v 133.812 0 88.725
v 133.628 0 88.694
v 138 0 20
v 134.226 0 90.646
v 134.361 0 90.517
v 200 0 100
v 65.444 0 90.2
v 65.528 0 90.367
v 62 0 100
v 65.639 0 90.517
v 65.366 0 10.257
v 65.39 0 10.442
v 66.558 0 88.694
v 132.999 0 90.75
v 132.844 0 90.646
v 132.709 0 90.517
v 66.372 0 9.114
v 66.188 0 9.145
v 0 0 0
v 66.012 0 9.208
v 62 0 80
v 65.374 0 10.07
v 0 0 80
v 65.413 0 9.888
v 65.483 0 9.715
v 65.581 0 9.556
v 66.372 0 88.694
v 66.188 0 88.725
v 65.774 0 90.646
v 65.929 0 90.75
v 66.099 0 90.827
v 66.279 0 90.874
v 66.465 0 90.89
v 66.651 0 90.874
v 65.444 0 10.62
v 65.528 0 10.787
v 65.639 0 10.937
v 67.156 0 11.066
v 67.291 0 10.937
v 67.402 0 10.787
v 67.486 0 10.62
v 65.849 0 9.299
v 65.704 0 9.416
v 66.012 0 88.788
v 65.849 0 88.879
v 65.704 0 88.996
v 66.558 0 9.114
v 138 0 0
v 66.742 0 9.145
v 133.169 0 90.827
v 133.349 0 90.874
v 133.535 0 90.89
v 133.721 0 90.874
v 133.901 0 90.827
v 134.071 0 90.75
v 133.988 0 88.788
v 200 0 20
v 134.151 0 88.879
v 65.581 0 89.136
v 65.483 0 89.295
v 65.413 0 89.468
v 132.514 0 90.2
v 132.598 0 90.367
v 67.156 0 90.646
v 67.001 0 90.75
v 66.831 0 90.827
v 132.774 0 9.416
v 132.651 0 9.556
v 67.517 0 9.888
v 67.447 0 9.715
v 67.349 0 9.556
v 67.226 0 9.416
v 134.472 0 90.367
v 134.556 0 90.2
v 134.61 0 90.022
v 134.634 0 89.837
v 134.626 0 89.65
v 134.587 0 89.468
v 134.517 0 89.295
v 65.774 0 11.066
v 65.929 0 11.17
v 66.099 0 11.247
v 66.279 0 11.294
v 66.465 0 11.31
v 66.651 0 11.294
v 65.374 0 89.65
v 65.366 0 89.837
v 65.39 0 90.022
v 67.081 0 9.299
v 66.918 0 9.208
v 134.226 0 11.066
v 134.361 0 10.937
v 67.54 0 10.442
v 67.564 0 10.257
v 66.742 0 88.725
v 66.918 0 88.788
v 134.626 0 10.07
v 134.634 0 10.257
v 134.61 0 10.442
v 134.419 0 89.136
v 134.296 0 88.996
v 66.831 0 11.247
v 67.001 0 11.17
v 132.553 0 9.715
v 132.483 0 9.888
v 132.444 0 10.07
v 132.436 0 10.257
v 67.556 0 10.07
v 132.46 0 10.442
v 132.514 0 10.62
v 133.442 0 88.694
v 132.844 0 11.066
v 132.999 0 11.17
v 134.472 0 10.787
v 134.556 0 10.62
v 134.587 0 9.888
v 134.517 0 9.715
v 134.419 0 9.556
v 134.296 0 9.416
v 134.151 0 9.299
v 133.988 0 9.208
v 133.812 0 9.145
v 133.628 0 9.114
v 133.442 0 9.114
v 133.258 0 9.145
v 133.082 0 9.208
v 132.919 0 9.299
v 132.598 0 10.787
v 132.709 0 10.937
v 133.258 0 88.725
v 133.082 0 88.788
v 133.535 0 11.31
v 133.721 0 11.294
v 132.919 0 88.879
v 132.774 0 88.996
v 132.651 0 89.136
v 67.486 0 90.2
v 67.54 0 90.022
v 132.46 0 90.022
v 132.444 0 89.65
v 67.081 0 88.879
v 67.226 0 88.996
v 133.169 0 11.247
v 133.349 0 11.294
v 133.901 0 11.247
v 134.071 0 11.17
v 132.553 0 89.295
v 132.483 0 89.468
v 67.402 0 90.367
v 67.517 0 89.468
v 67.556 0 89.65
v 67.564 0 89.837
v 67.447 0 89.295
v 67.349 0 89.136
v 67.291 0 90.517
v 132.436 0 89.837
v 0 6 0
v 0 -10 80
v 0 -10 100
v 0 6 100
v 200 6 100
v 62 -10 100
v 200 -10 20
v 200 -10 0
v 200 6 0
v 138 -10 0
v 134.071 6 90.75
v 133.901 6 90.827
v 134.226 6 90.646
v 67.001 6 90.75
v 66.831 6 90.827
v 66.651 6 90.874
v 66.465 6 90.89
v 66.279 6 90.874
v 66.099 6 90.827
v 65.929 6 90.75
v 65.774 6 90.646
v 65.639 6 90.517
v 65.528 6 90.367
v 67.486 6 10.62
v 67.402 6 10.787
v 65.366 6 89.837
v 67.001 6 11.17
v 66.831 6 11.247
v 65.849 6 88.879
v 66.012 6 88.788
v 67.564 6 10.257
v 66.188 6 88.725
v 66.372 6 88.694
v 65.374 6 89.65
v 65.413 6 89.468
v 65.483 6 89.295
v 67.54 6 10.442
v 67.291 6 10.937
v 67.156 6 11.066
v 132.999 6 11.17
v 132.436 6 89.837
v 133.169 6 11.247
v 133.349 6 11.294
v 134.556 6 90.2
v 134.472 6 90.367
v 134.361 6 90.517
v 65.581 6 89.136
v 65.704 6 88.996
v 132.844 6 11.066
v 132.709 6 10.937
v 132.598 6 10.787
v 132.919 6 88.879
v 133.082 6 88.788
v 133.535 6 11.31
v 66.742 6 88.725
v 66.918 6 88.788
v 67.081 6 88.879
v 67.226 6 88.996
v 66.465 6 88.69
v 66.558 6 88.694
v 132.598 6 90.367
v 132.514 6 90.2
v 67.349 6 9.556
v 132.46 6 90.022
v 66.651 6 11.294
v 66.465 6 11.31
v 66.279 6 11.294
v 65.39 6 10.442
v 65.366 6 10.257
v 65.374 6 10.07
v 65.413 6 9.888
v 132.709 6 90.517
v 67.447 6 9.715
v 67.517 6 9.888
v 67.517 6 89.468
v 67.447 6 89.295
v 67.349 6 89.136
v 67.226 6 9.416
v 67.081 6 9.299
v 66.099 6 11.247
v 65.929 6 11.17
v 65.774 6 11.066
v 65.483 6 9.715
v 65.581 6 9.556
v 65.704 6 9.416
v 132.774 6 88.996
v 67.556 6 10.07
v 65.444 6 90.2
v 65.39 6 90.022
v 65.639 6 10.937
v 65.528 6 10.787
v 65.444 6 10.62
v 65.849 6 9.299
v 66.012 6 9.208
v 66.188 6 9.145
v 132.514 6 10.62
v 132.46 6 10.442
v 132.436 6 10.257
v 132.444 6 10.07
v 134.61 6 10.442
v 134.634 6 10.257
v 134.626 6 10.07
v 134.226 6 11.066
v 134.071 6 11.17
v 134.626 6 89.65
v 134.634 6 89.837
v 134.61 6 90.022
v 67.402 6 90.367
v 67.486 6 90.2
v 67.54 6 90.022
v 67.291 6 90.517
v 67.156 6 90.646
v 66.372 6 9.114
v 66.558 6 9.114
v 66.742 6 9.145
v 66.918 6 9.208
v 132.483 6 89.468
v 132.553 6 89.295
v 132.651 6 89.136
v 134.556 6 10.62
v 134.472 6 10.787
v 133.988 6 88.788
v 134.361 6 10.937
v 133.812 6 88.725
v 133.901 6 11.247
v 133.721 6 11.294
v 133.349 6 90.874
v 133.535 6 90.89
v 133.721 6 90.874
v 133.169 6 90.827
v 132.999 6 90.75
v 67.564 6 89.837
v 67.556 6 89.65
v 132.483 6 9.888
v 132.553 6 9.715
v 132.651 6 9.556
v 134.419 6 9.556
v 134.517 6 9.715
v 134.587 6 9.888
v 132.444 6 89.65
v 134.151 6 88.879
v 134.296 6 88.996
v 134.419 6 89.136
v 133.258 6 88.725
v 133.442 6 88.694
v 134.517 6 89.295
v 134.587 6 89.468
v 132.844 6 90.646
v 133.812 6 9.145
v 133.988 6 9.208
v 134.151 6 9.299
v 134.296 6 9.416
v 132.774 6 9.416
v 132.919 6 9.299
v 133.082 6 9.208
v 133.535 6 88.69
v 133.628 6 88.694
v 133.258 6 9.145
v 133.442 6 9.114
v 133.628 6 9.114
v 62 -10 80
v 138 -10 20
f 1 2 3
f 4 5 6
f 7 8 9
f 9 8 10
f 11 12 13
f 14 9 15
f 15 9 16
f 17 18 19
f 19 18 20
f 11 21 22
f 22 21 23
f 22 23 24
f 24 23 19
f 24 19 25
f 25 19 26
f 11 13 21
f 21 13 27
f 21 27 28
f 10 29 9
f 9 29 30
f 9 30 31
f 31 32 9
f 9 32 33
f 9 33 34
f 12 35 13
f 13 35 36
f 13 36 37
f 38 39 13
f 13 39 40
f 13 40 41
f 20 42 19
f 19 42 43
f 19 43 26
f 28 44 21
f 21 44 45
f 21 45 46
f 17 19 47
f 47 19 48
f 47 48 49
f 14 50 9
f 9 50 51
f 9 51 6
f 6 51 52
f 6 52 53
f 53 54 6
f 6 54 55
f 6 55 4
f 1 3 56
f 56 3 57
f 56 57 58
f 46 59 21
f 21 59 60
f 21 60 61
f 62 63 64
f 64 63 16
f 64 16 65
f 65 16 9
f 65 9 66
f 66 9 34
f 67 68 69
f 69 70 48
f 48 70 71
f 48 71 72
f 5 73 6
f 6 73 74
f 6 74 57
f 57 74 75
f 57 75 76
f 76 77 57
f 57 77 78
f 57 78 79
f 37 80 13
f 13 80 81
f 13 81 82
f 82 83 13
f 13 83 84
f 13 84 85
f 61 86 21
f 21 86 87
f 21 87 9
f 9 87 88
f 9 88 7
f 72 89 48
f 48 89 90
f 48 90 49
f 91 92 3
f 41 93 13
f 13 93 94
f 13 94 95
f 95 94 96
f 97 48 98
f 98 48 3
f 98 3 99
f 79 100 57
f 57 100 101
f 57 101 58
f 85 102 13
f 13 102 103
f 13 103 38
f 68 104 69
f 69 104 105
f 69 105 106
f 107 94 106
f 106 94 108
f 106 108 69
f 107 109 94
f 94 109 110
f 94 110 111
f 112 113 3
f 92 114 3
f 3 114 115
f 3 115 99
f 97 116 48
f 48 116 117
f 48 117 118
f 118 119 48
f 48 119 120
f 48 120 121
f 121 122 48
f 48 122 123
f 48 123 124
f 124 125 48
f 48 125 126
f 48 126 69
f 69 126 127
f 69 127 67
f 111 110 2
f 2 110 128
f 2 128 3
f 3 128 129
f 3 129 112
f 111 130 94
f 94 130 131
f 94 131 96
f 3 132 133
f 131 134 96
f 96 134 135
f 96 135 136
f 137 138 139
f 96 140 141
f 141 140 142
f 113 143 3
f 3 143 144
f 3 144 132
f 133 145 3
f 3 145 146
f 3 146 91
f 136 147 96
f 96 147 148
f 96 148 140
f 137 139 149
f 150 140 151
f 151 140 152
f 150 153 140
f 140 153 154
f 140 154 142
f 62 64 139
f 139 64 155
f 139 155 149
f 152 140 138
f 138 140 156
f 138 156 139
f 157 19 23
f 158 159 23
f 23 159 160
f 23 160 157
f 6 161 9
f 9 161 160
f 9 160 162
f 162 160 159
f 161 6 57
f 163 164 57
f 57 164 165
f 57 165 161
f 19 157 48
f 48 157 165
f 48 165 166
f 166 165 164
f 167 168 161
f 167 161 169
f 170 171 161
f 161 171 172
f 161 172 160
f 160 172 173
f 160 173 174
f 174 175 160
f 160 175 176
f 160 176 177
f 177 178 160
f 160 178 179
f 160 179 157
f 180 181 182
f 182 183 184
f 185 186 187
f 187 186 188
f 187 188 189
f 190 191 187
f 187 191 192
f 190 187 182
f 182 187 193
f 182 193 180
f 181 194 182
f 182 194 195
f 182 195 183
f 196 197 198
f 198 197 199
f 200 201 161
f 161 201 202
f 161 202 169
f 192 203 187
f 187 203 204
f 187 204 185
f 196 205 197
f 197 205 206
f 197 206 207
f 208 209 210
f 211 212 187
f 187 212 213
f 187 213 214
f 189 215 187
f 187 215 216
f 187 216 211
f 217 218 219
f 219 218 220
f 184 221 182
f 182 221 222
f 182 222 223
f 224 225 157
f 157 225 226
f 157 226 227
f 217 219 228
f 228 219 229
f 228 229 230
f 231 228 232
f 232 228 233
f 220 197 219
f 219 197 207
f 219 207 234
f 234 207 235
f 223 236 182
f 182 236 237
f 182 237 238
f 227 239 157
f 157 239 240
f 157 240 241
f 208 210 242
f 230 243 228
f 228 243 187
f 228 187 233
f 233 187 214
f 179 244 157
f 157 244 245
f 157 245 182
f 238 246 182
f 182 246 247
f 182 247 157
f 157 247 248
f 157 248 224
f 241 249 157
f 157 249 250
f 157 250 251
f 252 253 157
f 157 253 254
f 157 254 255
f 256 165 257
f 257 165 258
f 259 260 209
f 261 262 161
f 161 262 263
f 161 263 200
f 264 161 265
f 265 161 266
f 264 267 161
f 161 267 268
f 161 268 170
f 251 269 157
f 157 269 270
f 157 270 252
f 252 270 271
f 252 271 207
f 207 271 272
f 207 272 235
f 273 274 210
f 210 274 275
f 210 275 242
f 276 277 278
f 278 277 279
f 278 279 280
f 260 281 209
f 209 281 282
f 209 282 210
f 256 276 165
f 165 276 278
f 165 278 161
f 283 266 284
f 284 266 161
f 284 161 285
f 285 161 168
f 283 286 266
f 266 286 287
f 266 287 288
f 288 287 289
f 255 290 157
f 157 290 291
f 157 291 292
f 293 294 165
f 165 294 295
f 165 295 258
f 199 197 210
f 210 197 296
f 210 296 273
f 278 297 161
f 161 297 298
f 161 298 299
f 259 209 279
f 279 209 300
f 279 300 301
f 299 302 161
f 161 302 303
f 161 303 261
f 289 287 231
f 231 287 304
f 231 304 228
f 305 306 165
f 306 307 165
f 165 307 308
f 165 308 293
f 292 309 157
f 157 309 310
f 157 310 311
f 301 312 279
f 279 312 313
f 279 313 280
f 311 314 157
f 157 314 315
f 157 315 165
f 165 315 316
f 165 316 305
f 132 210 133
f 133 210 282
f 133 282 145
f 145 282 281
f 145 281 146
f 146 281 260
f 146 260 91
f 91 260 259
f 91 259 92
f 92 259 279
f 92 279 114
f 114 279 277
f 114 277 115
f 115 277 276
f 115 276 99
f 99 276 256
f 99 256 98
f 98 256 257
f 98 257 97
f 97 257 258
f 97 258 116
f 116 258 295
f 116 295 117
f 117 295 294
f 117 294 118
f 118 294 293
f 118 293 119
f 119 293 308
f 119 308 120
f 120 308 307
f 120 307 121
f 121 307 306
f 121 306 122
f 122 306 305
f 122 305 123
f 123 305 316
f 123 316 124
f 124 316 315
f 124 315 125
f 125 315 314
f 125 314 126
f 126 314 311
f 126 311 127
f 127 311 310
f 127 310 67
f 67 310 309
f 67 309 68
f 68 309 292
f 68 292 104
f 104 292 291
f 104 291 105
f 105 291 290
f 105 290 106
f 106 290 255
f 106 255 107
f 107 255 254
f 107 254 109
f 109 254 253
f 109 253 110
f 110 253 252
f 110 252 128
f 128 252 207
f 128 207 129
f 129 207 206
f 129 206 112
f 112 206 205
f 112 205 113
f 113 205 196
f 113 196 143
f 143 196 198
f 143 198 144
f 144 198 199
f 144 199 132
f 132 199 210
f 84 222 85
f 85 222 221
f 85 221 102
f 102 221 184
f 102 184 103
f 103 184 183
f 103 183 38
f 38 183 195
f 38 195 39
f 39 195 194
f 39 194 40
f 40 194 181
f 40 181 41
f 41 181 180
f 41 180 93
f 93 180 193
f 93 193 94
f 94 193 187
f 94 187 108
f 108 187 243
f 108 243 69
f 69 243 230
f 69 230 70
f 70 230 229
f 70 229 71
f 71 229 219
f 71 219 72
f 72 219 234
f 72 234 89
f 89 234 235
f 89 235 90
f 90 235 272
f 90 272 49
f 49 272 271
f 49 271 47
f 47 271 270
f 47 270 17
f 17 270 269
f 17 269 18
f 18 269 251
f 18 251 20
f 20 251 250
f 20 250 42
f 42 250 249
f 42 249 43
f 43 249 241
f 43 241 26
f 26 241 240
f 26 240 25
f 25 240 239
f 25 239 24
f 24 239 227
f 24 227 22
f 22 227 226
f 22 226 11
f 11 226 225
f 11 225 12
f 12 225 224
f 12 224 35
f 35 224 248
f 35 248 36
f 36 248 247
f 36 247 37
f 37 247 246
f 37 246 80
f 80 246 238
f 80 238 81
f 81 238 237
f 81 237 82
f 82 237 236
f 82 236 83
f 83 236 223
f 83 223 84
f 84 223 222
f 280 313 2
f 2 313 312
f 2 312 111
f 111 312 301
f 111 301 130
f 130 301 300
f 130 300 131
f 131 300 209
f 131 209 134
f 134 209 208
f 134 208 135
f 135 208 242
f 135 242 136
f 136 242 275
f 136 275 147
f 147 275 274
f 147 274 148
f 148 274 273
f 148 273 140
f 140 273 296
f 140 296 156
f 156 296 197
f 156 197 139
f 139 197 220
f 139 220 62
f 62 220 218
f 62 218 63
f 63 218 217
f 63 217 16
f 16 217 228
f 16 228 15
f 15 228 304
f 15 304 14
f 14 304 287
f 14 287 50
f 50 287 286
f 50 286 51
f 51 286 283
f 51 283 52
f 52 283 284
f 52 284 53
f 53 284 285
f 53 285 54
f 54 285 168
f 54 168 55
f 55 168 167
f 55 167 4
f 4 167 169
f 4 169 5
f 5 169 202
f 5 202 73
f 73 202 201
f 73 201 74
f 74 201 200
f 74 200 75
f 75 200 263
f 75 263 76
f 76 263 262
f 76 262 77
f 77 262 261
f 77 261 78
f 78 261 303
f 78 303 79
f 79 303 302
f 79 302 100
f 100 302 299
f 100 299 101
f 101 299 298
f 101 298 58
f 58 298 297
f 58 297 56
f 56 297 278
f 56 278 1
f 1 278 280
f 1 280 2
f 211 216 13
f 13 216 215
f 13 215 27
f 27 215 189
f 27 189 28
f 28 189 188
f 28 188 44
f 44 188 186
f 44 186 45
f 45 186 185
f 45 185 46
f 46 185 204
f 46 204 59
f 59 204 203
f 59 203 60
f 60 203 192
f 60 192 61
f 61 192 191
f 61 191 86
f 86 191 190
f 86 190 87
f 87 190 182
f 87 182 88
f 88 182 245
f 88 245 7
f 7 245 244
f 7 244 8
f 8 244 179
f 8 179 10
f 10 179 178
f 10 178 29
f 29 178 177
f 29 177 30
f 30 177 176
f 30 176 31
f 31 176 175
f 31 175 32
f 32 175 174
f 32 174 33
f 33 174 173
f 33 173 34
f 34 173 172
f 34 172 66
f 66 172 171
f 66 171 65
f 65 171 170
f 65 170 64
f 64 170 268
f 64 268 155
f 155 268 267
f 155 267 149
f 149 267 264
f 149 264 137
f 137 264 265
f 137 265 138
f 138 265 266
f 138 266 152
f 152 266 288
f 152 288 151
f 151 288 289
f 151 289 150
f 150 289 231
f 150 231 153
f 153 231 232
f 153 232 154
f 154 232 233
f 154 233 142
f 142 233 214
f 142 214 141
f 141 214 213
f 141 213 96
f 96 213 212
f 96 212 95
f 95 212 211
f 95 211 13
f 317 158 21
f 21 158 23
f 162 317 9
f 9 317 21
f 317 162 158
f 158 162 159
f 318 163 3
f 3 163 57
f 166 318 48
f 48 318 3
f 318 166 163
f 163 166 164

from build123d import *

# Parameters (mm, degrees)
SKETCH2_W           = 200
SKETCH2_H           = 100
BOSS_EXTRUDE1_DEPTH = 6
SKETCH3_R           = 1.1
CUT_EXTRUDE1_DEPTH  = 6
SKETCH4_W           = 62
SKETCH4_H           = 20
BOSS_EXTRUDE2_DEPTH = 10


with BuildPart() as part:
    # Sketch2 → Boss-Extrude1 (new body)
    with BuildSketch(Plane(origin=(0, 0, 0), x_dir=(1, 0, 0), z_dir=(0, 1, 0))):
        with Locations((100, -50)):
            Rectangle(SKETCH2_W, SKETCH2_H)
    extrude(amount=BOSS_EXTRUDE1_DEPTH)

    # Sketch3 → Cut-Extrude1 (cut)
    with BuildSketch(Plane(origin=(0, 6, 0), x_dir=(1, 0, 0), z_dir=(0, 1, 0))):
        with Locations(Location((66.465, -10.21, 0), (0, 0, 270))):
            Circle(SKETCH3_R)
        with Locations(Location((133.535, -10.21, 0), (0, 0, 270))):
            Circle(SKETCH3_R)
    cut_extrude1 = extrude(amount=-CUT_EXTRUDE1_DEPTH, mode=Mode.SUBTRACT)

    # Mirror1: Cut-Extrude1 across plane
    add(cut_extrude1.mirror(Plane.XY.offset(50)), mode=Mode.SUBTRACT)

    # Sketch4 → Boss-Extrude2 (add)
    with BuildSketch(Plane.XZ):
        with Locations((31, 90)):
            Rectangle(SKETCH4_W, SKETCH4_H)
        with Locations((169, 10)):
            Rectangle(SKETCH4_W, SKETCH4_H)
    extrude(amount=BOSS_EXTRUDE2_DEPTH)


solid = part.part
